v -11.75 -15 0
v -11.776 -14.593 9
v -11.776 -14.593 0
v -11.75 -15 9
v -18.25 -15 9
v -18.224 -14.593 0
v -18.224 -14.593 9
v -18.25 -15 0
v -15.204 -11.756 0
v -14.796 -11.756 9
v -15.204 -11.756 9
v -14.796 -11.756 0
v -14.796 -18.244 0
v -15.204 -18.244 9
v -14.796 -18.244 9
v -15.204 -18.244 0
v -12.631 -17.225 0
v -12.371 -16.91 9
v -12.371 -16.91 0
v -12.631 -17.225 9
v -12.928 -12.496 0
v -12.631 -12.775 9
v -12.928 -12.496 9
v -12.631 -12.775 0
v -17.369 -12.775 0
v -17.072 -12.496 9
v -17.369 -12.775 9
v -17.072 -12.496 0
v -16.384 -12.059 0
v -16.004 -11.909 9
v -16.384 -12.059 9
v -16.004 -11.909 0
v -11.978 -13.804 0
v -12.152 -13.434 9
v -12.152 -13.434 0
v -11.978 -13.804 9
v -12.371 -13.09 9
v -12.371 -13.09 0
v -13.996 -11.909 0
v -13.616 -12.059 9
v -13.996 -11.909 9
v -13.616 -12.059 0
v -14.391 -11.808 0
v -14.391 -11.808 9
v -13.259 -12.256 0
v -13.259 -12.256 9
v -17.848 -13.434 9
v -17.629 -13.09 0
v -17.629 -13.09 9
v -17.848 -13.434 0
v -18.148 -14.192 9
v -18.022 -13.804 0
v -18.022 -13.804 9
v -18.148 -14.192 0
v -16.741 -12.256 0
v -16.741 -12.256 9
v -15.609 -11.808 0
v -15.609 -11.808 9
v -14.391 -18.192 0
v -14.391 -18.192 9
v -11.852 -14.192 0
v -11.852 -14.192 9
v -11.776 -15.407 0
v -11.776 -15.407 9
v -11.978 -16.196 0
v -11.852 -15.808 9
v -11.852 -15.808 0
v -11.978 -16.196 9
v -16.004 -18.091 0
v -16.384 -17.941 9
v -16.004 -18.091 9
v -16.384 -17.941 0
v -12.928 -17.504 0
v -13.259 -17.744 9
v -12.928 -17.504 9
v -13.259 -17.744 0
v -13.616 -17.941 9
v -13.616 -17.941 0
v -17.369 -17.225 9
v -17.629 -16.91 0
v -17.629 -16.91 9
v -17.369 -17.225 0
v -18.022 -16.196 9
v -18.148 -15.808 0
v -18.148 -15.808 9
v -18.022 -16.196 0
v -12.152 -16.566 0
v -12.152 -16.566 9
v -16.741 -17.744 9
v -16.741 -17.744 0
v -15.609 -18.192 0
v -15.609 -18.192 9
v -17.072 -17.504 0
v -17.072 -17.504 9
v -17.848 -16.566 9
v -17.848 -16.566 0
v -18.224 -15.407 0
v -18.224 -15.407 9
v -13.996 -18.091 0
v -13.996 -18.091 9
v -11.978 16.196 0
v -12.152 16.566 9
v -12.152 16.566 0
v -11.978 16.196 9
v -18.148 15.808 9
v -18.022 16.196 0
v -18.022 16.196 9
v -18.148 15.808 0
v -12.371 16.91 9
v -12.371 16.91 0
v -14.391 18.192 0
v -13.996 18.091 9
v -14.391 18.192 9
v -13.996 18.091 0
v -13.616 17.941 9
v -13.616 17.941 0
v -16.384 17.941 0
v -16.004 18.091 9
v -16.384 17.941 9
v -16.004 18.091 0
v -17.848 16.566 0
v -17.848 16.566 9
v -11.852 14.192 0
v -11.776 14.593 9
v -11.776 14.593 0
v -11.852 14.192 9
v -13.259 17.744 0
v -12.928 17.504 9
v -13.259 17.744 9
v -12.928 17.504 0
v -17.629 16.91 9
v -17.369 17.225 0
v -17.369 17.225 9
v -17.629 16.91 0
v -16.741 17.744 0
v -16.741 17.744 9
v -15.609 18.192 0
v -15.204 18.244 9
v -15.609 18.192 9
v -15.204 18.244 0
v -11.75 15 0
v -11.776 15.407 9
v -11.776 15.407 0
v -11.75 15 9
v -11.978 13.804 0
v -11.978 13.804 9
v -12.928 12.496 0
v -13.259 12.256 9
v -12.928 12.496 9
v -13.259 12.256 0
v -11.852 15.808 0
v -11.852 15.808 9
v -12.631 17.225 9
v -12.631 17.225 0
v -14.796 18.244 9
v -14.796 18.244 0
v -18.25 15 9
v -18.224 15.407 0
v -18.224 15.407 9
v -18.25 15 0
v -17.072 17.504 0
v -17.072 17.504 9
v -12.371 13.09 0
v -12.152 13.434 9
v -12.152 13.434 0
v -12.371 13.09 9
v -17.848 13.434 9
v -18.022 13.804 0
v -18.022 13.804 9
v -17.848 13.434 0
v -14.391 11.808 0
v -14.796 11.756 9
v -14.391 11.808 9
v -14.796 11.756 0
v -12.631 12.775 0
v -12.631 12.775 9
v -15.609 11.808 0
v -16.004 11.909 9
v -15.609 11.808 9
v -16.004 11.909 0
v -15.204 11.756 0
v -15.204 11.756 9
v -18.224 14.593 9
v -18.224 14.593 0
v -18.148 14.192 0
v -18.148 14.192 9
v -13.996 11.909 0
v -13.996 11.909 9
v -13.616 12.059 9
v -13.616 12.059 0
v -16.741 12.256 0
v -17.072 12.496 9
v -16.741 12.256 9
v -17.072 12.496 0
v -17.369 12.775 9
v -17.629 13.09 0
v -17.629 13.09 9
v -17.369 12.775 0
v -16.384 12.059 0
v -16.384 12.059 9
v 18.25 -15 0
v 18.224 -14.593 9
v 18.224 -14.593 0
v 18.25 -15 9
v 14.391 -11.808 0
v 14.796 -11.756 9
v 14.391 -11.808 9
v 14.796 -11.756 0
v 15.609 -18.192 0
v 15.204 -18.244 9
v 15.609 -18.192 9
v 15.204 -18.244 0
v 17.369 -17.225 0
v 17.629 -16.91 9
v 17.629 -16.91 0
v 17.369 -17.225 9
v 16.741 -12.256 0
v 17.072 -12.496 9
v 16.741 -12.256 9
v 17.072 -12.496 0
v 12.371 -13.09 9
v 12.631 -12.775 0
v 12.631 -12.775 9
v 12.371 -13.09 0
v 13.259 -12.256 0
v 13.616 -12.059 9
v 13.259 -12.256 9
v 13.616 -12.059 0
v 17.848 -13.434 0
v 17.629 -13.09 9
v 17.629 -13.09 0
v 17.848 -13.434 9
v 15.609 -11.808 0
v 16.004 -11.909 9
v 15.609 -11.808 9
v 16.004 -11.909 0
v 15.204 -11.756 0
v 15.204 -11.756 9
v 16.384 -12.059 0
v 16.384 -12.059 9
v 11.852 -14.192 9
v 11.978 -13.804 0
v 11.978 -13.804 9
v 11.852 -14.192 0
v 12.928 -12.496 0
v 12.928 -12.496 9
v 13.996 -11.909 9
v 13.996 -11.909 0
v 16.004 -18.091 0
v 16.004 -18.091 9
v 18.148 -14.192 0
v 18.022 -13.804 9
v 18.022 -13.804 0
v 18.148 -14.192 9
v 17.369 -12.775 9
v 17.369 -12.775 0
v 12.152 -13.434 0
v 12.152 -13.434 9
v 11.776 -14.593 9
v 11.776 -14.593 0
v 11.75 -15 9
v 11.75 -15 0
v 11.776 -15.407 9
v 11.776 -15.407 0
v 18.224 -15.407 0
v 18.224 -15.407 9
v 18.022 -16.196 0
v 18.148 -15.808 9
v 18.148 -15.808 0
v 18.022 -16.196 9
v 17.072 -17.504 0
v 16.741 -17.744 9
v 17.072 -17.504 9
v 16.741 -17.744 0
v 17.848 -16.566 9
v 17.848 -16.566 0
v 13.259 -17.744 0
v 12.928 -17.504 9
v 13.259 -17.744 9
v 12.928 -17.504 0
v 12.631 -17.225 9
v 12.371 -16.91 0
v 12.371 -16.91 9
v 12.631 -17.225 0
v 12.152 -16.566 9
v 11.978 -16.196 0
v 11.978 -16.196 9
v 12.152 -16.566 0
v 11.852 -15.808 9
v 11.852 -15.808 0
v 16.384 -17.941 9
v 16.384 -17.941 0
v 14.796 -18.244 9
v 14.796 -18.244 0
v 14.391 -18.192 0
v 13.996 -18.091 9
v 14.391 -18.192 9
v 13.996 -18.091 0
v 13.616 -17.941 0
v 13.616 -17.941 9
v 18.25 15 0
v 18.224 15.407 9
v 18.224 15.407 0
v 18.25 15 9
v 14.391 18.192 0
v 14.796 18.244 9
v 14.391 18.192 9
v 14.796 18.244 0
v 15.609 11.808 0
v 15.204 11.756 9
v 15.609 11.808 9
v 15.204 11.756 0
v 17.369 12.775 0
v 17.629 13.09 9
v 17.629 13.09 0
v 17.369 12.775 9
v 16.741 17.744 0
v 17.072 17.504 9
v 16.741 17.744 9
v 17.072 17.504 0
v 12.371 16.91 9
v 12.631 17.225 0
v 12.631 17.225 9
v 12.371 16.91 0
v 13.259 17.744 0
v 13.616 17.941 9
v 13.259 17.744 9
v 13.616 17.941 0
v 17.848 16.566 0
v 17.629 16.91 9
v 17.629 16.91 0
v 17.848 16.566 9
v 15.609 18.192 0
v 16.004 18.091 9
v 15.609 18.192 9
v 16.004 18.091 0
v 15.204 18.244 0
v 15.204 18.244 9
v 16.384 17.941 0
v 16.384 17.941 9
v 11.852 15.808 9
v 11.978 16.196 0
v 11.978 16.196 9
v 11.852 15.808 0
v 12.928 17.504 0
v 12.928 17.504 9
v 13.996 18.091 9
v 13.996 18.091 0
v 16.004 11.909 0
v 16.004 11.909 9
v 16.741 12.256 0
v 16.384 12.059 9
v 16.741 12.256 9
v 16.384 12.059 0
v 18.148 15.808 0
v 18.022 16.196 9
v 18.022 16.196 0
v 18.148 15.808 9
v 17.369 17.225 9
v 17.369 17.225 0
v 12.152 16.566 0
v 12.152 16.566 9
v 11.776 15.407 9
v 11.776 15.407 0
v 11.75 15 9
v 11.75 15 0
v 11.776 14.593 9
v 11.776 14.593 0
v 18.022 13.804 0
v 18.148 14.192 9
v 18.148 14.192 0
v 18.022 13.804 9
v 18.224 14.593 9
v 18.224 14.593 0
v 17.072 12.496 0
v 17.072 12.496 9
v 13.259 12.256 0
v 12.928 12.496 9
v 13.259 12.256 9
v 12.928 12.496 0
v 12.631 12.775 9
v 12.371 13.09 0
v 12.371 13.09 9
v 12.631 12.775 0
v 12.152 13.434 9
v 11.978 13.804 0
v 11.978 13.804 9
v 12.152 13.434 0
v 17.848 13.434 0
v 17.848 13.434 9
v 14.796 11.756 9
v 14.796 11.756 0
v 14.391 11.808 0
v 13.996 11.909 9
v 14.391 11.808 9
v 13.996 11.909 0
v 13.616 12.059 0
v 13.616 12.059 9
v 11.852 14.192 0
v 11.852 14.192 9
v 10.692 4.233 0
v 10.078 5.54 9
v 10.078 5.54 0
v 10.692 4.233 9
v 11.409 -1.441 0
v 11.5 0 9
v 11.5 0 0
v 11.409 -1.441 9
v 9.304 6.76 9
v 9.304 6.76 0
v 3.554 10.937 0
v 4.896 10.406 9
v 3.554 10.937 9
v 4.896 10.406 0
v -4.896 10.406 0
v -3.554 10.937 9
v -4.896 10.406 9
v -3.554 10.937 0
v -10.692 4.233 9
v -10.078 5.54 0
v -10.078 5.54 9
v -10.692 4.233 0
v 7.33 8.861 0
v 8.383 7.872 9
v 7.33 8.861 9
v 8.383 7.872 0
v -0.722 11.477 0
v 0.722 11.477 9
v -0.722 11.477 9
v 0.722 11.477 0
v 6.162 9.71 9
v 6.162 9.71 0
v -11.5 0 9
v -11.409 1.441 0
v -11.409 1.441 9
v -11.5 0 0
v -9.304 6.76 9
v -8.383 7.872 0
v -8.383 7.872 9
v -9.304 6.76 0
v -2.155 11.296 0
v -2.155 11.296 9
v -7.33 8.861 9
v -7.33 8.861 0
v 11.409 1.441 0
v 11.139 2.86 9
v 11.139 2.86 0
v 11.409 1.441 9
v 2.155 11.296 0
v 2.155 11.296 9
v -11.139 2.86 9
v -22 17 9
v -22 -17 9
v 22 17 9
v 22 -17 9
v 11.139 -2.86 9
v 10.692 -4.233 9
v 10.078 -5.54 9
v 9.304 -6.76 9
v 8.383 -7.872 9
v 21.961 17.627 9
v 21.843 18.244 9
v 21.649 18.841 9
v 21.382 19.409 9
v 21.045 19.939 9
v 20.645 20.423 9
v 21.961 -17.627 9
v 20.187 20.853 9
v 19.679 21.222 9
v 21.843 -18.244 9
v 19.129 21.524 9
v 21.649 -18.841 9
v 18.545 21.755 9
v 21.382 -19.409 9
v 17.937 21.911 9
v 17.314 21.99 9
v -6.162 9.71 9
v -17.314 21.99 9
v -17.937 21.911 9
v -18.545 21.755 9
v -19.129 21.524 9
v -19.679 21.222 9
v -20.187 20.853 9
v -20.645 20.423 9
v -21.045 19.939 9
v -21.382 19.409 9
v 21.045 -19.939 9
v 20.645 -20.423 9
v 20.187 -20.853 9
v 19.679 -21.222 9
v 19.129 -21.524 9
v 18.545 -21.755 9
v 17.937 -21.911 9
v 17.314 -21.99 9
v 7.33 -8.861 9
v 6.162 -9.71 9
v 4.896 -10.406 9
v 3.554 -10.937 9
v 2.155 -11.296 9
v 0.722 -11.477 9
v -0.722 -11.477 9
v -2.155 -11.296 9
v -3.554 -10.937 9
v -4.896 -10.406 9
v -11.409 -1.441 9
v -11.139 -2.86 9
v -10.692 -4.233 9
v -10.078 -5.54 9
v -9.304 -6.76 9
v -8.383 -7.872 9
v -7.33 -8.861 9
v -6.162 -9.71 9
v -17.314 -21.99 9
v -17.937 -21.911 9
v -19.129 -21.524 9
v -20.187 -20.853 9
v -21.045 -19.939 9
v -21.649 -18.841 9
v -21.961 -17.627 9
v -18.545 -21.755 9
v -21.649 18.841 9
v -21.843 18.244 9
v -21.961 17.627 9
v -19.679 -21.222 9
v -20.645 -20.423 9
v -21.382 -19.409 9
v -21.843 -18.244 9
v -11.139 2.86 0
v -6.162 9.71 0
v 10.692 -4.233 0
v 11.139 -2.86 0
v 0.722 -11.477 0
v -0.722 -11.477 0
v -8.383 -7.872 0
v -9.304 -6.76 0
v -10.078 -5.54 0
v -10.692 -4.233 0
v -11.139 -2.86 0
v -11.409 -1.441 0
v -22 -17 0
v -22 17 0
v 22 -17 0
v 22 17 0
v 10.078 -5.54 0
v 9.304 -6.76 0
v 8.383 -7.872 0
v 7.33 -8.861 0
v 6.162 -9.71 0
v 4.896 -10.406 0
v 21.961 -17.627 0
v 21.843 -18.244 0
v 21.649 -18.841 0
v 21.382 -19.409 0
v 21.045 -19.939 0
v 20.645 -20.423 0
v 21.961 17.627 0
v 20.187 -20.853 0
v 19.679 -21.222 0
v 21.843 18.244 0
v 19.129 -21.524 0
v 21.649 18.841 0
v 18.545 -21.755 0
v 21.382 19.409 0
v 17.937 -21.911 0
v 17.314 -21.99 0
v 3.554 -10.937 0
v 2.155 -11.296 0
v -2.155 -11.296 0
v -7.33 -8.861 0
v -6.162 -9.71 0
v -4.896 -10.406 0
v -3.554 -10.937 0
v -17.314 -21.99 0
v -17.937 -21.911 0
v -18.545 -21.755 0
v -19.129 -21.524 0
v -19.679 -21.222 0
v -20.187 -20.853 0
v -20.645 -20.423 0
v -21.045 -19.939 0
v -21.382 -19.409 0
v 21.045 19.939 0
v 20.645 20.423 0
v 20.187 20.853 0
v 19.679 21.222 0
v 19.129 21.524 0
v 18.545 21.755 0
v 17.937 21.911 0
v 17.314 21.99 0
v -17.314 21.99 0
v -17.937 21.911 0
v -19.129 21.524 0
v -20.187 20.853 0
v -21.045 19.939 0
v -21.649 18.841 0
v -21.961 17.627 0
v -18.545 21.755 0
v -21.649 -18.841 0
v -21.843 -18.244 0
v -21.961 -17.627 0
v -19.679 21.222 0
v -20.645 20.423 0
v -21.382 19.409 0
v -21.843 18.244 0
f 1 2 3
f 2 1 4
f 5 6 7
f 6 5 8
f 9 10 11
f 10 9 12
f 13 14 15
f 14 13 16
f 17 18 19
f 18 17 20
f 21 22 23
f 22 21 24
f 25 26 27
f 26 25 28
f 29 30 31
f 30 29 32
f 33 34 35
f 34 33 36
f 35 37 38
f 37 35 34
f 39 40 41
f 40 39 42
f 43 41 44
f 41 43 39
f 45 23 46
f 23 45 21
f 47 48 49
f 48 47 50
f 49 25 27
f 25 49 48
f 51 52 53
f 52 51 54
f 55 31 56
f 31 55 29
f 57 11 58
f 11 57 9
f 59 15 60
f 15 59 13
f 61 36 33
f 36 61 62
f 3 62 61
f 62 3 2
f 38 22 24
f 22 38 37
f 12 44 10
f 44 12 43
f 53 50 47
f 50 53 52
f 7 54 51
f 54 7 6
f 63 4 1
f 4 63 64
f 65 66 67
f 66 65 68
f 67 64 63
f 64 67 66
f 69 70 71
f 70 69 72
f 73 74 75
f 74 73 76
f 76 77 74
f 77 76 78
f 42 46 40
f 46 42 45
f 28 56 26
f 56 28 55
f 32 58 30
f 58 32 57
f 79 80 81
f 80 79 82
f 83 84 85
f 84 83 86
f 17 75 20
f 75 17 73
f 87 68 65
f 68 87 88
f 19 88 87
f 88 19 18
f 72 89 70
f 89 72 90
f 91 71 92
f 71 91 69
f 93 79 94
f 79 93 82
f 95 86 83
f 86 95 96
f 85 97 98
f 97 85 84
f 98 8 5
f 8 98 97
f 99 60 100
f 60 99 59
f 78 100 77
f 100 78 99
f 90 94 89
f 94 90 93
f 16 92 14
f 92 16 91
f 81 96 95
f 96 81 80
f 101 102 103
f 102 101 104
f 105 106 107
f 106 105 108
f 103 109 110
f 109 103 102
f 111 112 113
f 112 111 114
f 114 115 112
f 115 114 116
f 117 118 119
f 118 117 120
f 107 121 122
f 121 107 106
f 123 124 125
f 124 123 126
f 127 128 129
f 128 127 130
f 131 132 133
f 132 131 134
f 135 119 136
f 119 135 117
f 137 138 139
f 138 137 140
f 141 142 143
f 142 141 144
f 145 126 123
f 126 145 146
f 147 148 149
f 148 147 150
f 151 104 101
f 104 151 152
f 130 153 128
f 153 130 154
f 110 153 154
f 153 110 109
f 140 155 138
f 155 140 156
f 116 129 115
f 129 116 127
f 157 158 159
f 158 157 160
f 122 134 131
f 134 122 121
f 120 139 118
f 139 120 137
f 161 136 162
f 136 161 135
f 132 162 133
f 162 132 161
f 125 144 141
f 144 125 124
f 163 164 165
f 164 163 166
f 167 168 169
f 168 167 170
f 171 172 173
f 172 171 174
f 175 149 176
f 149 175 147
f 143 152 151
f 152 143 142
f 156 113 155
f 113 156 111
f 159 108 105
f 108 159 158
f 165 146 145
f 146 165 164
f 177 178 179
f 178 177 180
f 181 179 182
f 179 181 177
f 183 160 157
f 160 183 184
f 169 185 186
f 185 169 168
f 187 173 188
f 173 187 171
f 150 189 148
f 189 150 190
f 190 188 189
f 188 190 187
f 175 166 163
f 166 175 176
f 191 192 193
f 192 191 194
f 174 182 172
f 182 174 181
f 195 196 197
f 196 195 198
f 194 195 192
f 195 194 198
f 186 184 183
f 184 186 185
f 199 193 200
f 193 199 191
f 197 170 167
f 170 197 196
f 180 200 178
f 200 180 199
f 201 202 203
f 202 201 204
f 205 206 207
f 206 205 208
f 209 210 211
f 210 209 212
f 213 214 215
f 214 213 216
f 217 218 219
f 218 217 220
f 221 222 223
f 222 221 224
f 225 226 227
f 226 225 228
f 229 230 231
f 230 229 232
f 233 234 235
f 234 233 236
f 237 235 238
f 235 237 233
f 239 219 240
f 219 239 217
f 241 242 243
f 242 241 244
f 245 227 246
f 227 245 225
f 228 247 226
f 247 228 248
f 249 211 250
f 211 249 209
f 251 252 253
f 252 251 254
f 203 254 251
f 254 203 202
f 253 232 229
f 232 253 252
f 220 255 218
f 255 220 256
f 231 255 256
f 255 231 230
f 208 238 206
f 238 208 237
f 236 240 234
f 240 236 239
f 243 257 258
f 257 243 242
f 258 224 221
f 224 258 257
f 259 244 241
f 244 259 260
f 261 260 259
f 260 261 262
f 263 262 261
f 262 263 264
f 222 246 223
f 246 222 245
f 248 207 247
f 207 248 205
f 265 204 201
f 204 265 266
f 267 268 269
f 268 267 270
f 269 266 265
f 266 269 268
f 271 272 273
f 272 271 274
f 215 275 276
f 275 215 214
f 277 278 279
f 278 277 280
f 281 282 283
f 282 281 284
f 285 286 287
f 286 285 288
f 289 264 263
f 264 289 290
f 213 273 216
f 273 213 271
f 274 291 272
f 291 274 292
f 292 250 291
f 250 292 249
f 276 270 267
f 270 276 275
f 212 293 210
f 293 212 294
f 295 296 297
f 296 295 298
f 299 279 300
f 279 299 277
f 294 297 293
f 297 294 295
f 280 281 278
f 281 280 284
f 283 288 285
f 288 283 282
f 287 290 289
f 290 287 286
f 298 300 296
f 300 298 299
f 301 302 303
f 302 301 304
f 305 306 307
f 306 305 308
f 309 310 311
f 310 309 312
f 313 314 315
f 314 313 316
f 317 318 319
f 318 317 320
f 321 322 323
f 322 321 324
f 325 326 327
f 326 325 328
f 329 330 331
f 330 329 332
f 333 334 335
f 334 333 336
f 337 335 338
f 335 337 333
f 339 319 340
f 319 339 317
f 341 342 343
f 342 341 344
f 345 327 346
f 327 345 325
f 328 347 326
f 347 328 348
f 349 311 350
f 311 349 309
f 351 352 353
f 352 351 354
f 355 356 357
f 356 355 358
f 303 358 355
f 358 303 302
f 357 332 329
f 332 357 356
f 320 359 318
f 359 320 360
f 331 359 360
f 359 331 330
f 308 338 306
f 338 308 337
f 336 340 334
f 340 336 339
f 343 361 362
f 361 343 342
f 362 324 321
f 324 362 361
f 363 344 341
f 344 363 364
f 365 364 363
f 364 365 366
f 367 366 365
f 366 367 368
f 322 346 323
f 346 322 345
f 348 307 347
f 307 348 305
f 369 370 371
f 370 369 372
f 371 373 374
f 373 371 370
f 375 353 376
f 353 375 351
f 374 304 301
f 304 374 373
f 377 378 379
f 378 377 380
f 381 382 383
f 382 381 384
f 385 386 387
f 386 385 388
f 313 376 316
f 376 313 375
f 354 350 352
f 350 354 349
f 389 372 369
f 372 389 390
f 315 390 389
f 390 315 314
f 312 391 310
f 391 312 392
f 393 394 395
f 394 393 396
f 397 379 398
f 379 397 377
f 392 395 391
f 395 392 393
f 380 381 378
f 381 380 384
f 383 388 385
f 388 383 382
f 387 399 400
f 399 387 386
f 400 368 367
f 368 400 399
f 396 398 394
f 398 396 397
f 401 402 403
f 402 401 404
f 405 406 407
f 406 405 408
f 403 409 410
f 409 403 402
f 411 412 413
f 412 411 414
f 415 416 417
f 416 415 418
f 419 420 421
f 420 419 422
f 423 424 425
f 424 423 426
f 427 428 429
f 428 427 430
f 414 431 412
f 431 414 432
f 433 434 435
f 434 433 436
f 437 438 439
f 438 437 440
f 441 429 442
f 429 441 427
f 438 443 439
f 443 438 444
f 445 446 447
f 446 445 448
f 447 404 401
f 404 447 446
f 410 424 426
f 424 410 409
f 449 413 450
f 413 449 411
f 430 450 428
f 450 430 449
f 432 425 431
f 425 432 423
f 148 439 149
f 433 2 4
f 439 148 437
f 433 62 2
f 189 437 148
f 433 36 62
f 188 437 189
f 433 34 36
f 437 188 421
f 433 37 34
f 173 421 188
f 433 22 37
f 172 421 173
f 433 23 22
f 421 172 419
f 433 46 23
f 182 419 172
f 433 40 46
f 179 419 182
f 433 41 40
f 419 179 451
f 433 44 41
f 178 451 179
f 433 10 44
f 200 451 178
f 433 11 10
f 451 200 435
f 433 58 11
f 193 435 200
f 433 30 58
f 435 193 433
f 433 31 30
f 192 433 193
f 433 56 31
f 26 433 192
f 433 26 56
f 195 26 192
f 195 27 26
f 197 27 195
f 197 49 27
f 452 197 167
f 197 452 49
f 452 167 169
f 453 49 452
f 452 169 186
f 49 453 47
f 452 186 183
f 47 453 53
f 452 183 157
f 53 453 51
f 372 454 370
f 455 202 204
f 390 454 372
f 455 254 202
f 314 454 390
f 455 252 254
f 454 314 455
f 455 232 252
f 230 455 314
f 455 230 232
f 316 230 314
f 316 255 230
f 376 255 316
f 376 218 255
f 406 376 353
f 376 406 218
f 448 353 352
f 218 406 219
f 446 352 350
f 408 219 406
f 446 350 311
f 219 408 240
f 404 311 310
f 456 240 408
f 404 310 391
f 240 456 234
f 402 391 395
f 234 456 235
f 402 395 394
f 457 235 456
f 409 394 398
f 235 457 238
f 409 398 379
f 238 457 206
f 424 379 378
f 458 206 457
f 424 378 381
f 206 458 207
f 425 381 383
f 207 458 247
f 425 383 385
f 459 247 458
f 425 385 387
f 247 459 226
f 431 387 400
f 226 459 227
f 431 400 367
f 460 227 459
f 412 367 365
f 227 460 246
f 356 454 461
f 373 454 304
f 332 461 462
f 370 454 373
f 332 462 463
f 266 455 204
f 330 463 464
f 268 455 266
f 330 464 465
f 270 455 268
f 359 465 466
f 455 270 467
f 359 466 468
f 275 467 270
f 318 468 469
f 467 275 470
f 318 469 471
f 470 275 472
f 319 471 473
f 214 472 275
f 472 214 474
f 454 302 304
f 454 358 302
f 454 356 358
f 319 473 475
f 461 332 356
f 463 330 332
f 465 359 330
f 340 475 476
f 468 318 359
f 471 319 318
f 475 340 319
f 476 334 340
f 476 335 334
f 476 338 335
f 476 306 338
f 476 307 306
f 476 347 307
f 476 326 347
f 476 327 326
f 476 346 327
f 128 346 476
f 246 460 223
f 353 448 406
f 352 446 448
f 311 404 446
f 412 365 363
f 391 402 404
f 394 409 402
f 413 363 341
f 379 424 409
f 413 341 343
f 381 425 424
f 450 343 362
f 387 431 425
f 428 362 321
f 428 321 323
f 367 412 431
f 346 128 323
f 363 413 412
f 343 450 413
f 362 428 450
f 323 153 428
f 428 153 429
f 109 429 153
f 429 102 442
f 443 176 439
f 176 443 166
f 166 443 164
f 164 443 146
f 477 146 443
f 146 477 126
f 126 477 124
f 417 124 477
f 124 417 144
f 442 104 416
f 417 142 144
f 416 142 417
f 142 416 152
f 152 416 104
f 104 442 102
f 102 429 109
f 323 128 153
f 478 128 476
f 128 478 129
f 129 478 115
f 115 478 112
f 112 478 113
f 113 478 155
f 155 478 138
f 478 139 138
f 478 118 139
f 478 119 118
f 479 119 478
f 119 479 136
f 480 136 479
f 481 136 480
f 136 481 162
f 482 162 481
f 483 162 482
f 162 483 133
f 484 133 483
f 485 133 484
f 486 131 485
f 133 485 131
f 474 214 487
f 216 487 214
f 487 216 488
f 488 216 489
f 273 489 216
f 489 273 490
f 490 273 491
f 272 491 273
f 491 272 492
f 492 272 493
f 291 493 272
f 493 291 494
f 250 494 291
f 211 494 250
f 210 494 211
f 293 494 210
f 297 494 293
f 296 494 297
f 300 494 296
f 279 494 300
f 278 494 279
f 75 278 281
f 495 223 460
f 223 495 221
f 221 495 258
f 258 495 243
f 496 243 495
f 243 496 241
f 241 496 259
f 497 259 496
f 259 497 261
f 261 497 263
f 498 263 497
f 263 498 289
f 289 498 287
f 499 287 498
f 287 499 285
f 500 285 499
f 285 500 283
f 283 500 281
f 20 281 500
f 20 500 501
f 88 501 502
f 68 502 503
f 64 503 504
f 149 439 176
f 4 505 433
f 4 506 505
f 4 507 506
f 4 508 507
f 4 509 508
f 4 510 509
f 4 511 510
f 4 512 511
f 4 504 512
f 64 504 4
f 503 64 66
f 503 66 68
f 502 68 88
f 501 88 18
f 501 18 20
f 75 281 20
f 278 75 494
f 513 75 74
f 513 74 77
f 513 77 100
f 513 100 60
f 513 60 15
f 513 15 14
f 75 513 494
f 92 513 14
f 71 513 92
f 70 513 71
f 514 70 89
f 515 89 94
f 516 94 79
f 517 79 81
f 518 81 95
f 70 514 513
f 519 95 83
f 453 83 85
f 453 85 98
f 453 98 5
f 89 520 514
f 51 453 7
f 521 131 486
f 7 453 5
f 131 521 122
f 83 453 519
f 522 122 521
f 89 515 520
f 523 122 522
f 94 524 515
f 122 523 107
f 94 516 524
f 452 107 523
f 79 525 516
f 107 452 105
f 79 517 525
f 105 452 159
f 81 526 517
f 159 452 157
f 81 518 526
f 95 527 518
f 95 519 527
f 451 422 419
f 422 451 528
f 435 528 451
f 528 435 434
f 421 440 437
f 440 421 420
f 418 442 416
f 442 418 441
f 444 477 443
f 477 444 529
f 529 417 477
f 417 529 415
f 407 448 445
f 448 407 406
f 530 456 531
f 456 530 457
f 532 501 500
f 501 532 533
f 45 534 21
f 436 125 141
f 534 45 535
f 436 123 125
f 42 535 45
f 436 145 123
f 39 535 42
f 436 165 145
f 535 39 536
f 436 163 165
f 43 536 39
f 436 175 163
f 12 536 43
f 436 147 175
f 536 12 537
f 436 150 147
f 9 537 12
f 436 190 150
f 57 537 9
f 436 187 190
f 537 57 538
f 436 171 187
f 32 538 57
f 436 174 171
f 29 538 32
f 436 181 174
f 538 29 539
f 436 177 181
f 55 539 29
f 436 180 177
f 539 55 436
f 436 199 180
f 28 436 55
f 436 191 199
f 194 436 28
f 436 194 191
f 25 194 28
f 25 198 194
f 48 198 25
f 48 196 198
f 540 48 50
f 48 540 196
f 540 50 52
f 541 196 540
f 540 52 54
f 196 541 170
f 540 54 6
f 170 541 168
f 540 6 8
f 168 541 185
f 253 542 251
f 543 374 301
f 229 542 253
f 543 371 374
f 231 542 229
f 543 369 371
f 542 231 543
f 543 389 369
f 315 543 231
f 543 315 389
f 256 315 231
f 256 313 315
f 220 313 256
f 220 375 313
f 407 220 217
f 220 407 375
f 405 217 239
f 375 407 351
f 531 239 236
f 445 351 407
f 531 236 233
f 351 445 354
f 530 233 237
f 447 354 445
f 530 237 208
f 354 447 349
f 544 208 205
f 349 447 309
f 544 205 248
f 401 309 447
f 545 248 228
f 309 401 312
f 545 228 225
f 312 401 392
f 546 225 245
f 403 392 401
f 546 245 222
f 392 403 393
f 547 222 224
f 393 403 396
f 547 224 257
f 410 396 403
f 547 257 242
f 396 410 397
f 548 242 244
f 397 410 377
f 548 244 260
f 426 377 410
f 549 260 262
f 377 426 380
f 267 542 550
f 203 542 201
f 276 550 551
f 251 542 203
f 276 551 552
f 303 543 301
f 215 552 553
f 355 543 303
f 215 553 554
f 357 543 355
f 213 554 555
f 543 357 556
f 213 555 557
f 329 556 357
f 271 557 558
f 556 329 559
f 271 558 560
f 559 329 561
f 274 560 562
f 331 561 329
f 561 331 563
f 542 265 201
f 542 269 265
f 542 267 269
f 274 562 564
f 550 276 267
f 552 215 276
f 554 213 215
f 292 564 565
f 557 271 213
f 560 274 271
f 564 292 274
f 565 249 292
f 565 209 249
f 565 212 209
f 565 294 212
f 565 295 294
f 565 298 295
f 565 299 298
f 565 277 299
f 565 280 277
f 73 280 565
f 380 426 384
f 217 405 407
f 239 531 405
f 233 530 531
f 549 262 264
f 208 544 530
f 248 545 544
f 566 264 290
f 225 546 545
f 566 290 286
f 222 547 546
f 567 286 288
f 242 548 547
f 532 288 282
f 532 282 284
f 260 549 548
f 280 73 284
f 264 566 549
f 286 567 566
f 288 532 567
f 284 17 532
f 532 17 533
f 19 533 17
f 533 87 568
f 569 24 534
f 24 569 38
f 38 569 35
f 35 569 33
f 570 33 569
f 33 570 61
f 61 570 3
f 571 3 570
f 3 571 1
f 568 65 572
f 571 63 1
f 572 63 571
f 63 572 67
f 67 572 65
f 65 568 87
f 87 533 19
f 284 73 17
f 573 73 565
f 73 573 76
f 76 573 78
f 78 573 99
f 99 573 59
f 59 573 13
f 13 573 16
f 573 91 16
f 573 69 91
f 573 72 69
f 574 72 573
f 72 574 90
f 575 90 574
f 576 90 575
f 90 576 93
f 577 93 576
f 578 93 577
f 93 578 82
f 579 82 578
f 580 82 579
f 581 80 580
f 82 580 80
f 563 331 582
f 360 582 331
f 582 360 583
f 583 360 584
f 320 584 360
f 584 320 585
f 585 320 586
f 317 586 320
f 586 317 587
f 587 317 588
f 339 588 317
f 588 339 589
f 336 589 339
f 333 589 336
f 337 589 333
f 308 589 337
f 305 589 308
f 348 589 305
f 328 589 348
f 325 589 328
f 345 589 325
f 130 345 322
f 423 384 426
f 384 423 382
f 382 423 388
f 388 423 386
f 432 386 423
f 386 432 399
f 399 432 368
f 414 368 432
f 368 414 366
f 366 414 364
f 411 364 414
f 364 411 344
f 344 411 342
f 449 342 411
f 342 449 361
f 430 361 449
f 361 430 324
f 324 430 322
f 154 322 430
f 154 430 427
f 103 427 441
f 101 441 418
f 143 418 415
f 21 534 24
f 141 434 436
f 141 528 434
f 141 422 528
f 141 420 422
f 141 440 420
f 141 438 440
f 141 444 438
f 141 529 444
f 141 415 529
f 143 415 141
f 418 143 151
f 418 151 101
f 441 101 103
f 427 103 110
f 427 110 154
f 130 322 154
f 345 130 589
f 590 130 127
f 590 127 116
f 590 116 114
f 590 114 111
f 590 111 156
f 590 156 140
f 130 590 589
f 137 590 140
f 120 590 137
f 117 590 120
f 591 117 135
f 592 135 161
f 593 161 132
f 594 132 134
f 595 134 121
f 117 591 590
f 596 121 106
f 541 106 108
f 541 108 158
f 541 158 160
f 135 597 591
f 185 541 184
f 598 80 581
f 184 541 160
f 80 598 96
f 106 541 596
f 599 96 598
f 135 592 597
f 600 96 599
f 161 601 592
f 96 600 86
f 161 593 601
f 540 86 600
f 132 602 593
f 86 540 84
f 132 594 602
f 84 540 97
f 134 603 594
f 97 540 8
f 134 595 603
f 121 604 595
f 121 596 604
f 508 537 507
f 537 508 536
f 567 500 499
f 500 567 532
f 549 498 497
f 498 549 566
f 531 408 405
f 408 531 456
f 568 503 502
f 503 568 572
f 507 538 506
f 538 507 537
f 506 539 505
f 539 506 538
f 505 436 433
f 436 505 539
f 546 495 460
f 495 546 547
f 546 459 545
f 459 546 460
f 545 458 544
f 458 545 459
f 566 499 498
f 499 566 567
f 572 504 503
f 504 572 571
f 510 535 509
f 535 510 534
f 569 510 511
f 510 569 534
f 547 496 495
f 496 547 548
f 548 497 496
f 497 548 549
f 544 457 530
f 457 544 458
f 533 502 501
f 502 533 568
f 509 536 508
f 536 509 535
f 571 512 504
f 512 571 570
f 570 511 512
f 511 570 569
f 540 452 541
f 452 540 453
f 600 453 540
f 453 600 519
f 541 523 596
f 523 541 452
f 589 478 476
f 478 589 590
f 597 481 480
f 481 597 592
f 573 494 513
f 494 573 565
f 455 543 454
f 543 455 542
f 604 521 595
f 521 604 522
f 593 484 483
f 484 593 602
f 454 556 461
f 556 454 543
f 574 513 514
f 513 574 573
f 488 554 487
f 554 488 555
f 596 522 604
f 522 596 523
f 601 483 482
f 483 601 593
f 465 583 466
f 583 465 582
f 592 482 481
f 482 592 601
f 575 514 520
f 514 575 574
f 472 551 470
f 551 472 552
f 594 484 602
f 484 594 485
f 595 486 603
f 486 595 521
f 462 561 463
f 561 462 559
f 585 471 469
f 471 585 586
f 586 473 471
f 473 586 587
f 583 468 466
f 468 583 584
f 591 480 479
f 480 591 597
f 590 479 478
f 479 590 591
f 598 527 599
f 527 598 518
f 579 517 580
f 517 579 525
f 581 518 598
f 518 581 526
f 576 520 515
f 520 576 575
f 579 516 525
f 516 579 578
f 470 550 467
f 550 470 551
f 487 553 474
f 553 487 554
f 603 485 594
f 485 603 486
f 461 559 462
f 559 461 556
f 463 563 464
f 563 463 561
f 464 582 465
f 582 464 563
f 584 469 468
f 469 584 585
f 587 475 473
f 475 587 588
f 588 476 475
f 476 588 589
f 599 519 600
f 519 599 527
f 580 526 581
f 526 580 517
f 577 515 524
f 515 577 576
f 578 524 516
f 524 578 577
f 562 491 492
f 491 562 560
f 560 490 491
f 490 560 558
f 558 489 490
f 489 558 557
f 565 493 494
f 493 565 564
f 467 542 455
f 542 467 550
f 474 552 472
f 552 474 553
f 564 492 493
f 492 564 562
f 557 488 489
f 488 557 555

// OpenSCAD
$fn = 50;


difference() {
	union() {
		hull() {
			translate(v = [-17.0000000000, 17.0000000000, 0]) {
				cylinder(h = 9, r = 5);
			}
			translate(v = [17.0000000000, 17.0000000000, 0]) {
				cylinder(h = 9, r = 5);
			}
			translate(v = [-17.0000000000, -17.0000000000, 0]) {
				cylinder(h = 9, r = 5);
			}
			translate(v = [17.0000000000, -17.0000000000, 0]) {
				cylinder(h = 9, r = 5);
			}
		}
	}
	union() {
		#translate(v = [-15.0000000000, -15.0000000000, -100.0000000000]) {
			cylinder(h = 200, r = 3.2500000000);
		}
		#translate(v = [-15.0000000000, 15.0000000000, -100.0000000000]) {
			cylinder(h = 200, r = 3.2500000000);
		}
		#translate(v = [15.0000000000, -15.0000000000, -100.0000000000]) {
			cylinder(h = 200, r = 3.2500000000);
		}
		#translate(v = [15.0000000000, 15.0000000000, -100.0000000000]) {
			cylinder(h = 200, r = 3.2500000000);
		}
		#cylinder(h = 9, r = 11.5000000000);
	}
}
